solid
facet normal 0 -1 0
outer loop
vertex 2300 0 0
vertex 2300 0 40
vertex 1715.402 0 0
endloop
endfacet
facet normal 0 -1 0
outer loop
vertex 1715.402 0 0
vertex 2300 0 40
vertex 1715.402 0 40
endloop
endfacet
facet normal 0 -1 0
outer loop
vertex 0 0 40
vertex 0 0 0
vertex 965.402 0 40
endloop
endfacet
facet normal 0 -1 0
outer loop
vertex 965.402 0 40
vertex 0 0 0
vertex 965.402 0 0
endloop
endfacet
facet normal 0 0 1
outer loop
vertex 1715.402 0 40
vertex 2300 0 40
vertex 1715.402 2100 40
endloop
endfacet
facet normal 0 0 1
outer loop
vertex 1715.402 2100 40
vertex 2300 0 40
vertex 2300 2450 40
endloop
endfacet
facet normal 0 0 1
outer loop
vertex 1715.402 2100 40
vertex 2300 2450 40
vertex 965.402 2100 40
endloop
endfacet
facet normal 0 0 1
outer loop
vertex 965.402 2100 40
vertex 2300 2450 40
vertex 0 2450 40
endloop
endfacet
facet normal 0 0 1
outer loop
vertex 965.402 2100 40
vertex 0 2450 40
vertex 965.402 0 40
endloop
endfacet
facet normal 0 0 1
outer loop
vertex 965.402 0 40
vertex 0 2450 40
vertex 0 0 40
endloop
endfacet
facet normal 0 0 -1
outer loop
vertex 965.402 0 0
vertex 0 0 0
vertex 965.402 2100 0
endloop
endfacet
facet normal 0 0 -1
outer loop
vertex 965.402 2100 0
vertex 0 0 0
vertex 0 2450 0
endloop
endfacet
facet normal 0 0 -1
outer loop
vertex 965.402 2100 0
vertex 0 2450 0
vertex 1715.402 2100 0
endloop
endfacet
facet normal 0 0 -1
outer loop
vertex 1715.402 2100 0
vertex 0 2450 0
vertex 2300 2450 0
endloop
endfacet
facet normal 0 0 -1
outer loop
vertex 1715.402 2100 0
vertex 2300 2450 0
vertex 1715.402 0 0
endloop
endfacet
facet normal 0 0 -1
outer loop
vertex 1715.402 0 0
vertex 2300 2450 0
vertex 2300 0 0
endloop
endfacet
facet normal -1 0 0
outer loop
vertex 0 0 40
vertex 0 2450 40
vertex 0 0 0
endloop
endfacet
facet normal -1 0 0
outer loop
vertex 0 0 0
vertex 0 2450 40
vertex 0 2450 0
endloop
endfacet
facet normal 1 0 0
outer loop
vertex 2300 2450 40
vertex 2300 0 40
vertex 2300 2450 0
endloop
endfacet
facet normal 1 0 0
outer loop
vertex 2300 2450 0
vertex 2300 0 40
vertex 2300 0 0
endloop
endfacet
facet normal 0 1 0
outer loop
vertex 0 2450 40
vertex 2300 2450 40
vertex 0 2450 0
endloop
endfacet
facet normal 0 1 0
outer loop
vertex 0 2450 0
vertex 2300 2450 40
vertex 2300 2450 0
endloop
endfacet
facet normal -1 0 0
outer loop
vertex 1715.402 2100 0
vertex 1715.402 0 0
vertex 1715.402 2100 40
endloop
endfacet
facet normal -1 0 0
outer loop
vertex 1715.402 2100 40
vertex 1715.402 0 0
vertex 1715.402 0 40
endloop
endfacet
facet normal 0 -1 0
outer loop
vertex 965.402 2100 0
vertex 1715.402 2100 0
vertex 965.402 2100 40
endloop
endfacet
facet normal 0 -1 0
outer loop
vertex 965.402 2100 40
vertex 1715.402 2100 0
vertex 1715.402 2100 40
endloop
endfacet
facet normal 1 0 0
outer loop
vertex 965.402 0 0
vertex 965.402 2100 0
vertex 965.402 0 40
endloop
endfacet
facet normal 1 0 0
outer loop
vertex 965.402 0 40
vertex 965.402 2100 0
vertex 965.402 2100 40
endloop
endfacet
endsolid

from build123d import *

# Parameters (mm, degrees)
SKETCH1_W               = 2300
SKETCH1_H               = 2450
BOSS_EXTRUDE1_DEPTH     = 40
SKETCH2_W               = 750
SKETCH2_H               = 2100
CUT_EXTRUDE1_DEPTH      = 100
CUT_EXTRUDE1_DEPTH_BACK = 100


with BuildPart() as part:
    # Sketch1 → Boss-Extrude1 (new body)
    with BuildSketch(Plane.XY):
        with Locations((1150, 1225)):
            Rectangle(SKETCH1_W, SKETCH1_H)
    extrude(amount=BOSS_EXTRUDE1_DEPTH)

    # Sketch2 → Cut-Extrude1 (cut, two sides)
    with BuildSketch(Plane.XY) as cut_extrude1_sk:
        with Locations((1340.402049567, 1050)):
            Rectangle(SKETCH2_W, SKETCH2_H)
    extrude(amount=CUT_EXTRUDE1_DEPTH, mode=Mode.SUBTRACT)
    extrude(cut_extrude1_sk.sketch, amount=-CUT_EXTRUDE1_DEPTH_BACK, mode=Mode.SUBTRACT)


solid = part.part
